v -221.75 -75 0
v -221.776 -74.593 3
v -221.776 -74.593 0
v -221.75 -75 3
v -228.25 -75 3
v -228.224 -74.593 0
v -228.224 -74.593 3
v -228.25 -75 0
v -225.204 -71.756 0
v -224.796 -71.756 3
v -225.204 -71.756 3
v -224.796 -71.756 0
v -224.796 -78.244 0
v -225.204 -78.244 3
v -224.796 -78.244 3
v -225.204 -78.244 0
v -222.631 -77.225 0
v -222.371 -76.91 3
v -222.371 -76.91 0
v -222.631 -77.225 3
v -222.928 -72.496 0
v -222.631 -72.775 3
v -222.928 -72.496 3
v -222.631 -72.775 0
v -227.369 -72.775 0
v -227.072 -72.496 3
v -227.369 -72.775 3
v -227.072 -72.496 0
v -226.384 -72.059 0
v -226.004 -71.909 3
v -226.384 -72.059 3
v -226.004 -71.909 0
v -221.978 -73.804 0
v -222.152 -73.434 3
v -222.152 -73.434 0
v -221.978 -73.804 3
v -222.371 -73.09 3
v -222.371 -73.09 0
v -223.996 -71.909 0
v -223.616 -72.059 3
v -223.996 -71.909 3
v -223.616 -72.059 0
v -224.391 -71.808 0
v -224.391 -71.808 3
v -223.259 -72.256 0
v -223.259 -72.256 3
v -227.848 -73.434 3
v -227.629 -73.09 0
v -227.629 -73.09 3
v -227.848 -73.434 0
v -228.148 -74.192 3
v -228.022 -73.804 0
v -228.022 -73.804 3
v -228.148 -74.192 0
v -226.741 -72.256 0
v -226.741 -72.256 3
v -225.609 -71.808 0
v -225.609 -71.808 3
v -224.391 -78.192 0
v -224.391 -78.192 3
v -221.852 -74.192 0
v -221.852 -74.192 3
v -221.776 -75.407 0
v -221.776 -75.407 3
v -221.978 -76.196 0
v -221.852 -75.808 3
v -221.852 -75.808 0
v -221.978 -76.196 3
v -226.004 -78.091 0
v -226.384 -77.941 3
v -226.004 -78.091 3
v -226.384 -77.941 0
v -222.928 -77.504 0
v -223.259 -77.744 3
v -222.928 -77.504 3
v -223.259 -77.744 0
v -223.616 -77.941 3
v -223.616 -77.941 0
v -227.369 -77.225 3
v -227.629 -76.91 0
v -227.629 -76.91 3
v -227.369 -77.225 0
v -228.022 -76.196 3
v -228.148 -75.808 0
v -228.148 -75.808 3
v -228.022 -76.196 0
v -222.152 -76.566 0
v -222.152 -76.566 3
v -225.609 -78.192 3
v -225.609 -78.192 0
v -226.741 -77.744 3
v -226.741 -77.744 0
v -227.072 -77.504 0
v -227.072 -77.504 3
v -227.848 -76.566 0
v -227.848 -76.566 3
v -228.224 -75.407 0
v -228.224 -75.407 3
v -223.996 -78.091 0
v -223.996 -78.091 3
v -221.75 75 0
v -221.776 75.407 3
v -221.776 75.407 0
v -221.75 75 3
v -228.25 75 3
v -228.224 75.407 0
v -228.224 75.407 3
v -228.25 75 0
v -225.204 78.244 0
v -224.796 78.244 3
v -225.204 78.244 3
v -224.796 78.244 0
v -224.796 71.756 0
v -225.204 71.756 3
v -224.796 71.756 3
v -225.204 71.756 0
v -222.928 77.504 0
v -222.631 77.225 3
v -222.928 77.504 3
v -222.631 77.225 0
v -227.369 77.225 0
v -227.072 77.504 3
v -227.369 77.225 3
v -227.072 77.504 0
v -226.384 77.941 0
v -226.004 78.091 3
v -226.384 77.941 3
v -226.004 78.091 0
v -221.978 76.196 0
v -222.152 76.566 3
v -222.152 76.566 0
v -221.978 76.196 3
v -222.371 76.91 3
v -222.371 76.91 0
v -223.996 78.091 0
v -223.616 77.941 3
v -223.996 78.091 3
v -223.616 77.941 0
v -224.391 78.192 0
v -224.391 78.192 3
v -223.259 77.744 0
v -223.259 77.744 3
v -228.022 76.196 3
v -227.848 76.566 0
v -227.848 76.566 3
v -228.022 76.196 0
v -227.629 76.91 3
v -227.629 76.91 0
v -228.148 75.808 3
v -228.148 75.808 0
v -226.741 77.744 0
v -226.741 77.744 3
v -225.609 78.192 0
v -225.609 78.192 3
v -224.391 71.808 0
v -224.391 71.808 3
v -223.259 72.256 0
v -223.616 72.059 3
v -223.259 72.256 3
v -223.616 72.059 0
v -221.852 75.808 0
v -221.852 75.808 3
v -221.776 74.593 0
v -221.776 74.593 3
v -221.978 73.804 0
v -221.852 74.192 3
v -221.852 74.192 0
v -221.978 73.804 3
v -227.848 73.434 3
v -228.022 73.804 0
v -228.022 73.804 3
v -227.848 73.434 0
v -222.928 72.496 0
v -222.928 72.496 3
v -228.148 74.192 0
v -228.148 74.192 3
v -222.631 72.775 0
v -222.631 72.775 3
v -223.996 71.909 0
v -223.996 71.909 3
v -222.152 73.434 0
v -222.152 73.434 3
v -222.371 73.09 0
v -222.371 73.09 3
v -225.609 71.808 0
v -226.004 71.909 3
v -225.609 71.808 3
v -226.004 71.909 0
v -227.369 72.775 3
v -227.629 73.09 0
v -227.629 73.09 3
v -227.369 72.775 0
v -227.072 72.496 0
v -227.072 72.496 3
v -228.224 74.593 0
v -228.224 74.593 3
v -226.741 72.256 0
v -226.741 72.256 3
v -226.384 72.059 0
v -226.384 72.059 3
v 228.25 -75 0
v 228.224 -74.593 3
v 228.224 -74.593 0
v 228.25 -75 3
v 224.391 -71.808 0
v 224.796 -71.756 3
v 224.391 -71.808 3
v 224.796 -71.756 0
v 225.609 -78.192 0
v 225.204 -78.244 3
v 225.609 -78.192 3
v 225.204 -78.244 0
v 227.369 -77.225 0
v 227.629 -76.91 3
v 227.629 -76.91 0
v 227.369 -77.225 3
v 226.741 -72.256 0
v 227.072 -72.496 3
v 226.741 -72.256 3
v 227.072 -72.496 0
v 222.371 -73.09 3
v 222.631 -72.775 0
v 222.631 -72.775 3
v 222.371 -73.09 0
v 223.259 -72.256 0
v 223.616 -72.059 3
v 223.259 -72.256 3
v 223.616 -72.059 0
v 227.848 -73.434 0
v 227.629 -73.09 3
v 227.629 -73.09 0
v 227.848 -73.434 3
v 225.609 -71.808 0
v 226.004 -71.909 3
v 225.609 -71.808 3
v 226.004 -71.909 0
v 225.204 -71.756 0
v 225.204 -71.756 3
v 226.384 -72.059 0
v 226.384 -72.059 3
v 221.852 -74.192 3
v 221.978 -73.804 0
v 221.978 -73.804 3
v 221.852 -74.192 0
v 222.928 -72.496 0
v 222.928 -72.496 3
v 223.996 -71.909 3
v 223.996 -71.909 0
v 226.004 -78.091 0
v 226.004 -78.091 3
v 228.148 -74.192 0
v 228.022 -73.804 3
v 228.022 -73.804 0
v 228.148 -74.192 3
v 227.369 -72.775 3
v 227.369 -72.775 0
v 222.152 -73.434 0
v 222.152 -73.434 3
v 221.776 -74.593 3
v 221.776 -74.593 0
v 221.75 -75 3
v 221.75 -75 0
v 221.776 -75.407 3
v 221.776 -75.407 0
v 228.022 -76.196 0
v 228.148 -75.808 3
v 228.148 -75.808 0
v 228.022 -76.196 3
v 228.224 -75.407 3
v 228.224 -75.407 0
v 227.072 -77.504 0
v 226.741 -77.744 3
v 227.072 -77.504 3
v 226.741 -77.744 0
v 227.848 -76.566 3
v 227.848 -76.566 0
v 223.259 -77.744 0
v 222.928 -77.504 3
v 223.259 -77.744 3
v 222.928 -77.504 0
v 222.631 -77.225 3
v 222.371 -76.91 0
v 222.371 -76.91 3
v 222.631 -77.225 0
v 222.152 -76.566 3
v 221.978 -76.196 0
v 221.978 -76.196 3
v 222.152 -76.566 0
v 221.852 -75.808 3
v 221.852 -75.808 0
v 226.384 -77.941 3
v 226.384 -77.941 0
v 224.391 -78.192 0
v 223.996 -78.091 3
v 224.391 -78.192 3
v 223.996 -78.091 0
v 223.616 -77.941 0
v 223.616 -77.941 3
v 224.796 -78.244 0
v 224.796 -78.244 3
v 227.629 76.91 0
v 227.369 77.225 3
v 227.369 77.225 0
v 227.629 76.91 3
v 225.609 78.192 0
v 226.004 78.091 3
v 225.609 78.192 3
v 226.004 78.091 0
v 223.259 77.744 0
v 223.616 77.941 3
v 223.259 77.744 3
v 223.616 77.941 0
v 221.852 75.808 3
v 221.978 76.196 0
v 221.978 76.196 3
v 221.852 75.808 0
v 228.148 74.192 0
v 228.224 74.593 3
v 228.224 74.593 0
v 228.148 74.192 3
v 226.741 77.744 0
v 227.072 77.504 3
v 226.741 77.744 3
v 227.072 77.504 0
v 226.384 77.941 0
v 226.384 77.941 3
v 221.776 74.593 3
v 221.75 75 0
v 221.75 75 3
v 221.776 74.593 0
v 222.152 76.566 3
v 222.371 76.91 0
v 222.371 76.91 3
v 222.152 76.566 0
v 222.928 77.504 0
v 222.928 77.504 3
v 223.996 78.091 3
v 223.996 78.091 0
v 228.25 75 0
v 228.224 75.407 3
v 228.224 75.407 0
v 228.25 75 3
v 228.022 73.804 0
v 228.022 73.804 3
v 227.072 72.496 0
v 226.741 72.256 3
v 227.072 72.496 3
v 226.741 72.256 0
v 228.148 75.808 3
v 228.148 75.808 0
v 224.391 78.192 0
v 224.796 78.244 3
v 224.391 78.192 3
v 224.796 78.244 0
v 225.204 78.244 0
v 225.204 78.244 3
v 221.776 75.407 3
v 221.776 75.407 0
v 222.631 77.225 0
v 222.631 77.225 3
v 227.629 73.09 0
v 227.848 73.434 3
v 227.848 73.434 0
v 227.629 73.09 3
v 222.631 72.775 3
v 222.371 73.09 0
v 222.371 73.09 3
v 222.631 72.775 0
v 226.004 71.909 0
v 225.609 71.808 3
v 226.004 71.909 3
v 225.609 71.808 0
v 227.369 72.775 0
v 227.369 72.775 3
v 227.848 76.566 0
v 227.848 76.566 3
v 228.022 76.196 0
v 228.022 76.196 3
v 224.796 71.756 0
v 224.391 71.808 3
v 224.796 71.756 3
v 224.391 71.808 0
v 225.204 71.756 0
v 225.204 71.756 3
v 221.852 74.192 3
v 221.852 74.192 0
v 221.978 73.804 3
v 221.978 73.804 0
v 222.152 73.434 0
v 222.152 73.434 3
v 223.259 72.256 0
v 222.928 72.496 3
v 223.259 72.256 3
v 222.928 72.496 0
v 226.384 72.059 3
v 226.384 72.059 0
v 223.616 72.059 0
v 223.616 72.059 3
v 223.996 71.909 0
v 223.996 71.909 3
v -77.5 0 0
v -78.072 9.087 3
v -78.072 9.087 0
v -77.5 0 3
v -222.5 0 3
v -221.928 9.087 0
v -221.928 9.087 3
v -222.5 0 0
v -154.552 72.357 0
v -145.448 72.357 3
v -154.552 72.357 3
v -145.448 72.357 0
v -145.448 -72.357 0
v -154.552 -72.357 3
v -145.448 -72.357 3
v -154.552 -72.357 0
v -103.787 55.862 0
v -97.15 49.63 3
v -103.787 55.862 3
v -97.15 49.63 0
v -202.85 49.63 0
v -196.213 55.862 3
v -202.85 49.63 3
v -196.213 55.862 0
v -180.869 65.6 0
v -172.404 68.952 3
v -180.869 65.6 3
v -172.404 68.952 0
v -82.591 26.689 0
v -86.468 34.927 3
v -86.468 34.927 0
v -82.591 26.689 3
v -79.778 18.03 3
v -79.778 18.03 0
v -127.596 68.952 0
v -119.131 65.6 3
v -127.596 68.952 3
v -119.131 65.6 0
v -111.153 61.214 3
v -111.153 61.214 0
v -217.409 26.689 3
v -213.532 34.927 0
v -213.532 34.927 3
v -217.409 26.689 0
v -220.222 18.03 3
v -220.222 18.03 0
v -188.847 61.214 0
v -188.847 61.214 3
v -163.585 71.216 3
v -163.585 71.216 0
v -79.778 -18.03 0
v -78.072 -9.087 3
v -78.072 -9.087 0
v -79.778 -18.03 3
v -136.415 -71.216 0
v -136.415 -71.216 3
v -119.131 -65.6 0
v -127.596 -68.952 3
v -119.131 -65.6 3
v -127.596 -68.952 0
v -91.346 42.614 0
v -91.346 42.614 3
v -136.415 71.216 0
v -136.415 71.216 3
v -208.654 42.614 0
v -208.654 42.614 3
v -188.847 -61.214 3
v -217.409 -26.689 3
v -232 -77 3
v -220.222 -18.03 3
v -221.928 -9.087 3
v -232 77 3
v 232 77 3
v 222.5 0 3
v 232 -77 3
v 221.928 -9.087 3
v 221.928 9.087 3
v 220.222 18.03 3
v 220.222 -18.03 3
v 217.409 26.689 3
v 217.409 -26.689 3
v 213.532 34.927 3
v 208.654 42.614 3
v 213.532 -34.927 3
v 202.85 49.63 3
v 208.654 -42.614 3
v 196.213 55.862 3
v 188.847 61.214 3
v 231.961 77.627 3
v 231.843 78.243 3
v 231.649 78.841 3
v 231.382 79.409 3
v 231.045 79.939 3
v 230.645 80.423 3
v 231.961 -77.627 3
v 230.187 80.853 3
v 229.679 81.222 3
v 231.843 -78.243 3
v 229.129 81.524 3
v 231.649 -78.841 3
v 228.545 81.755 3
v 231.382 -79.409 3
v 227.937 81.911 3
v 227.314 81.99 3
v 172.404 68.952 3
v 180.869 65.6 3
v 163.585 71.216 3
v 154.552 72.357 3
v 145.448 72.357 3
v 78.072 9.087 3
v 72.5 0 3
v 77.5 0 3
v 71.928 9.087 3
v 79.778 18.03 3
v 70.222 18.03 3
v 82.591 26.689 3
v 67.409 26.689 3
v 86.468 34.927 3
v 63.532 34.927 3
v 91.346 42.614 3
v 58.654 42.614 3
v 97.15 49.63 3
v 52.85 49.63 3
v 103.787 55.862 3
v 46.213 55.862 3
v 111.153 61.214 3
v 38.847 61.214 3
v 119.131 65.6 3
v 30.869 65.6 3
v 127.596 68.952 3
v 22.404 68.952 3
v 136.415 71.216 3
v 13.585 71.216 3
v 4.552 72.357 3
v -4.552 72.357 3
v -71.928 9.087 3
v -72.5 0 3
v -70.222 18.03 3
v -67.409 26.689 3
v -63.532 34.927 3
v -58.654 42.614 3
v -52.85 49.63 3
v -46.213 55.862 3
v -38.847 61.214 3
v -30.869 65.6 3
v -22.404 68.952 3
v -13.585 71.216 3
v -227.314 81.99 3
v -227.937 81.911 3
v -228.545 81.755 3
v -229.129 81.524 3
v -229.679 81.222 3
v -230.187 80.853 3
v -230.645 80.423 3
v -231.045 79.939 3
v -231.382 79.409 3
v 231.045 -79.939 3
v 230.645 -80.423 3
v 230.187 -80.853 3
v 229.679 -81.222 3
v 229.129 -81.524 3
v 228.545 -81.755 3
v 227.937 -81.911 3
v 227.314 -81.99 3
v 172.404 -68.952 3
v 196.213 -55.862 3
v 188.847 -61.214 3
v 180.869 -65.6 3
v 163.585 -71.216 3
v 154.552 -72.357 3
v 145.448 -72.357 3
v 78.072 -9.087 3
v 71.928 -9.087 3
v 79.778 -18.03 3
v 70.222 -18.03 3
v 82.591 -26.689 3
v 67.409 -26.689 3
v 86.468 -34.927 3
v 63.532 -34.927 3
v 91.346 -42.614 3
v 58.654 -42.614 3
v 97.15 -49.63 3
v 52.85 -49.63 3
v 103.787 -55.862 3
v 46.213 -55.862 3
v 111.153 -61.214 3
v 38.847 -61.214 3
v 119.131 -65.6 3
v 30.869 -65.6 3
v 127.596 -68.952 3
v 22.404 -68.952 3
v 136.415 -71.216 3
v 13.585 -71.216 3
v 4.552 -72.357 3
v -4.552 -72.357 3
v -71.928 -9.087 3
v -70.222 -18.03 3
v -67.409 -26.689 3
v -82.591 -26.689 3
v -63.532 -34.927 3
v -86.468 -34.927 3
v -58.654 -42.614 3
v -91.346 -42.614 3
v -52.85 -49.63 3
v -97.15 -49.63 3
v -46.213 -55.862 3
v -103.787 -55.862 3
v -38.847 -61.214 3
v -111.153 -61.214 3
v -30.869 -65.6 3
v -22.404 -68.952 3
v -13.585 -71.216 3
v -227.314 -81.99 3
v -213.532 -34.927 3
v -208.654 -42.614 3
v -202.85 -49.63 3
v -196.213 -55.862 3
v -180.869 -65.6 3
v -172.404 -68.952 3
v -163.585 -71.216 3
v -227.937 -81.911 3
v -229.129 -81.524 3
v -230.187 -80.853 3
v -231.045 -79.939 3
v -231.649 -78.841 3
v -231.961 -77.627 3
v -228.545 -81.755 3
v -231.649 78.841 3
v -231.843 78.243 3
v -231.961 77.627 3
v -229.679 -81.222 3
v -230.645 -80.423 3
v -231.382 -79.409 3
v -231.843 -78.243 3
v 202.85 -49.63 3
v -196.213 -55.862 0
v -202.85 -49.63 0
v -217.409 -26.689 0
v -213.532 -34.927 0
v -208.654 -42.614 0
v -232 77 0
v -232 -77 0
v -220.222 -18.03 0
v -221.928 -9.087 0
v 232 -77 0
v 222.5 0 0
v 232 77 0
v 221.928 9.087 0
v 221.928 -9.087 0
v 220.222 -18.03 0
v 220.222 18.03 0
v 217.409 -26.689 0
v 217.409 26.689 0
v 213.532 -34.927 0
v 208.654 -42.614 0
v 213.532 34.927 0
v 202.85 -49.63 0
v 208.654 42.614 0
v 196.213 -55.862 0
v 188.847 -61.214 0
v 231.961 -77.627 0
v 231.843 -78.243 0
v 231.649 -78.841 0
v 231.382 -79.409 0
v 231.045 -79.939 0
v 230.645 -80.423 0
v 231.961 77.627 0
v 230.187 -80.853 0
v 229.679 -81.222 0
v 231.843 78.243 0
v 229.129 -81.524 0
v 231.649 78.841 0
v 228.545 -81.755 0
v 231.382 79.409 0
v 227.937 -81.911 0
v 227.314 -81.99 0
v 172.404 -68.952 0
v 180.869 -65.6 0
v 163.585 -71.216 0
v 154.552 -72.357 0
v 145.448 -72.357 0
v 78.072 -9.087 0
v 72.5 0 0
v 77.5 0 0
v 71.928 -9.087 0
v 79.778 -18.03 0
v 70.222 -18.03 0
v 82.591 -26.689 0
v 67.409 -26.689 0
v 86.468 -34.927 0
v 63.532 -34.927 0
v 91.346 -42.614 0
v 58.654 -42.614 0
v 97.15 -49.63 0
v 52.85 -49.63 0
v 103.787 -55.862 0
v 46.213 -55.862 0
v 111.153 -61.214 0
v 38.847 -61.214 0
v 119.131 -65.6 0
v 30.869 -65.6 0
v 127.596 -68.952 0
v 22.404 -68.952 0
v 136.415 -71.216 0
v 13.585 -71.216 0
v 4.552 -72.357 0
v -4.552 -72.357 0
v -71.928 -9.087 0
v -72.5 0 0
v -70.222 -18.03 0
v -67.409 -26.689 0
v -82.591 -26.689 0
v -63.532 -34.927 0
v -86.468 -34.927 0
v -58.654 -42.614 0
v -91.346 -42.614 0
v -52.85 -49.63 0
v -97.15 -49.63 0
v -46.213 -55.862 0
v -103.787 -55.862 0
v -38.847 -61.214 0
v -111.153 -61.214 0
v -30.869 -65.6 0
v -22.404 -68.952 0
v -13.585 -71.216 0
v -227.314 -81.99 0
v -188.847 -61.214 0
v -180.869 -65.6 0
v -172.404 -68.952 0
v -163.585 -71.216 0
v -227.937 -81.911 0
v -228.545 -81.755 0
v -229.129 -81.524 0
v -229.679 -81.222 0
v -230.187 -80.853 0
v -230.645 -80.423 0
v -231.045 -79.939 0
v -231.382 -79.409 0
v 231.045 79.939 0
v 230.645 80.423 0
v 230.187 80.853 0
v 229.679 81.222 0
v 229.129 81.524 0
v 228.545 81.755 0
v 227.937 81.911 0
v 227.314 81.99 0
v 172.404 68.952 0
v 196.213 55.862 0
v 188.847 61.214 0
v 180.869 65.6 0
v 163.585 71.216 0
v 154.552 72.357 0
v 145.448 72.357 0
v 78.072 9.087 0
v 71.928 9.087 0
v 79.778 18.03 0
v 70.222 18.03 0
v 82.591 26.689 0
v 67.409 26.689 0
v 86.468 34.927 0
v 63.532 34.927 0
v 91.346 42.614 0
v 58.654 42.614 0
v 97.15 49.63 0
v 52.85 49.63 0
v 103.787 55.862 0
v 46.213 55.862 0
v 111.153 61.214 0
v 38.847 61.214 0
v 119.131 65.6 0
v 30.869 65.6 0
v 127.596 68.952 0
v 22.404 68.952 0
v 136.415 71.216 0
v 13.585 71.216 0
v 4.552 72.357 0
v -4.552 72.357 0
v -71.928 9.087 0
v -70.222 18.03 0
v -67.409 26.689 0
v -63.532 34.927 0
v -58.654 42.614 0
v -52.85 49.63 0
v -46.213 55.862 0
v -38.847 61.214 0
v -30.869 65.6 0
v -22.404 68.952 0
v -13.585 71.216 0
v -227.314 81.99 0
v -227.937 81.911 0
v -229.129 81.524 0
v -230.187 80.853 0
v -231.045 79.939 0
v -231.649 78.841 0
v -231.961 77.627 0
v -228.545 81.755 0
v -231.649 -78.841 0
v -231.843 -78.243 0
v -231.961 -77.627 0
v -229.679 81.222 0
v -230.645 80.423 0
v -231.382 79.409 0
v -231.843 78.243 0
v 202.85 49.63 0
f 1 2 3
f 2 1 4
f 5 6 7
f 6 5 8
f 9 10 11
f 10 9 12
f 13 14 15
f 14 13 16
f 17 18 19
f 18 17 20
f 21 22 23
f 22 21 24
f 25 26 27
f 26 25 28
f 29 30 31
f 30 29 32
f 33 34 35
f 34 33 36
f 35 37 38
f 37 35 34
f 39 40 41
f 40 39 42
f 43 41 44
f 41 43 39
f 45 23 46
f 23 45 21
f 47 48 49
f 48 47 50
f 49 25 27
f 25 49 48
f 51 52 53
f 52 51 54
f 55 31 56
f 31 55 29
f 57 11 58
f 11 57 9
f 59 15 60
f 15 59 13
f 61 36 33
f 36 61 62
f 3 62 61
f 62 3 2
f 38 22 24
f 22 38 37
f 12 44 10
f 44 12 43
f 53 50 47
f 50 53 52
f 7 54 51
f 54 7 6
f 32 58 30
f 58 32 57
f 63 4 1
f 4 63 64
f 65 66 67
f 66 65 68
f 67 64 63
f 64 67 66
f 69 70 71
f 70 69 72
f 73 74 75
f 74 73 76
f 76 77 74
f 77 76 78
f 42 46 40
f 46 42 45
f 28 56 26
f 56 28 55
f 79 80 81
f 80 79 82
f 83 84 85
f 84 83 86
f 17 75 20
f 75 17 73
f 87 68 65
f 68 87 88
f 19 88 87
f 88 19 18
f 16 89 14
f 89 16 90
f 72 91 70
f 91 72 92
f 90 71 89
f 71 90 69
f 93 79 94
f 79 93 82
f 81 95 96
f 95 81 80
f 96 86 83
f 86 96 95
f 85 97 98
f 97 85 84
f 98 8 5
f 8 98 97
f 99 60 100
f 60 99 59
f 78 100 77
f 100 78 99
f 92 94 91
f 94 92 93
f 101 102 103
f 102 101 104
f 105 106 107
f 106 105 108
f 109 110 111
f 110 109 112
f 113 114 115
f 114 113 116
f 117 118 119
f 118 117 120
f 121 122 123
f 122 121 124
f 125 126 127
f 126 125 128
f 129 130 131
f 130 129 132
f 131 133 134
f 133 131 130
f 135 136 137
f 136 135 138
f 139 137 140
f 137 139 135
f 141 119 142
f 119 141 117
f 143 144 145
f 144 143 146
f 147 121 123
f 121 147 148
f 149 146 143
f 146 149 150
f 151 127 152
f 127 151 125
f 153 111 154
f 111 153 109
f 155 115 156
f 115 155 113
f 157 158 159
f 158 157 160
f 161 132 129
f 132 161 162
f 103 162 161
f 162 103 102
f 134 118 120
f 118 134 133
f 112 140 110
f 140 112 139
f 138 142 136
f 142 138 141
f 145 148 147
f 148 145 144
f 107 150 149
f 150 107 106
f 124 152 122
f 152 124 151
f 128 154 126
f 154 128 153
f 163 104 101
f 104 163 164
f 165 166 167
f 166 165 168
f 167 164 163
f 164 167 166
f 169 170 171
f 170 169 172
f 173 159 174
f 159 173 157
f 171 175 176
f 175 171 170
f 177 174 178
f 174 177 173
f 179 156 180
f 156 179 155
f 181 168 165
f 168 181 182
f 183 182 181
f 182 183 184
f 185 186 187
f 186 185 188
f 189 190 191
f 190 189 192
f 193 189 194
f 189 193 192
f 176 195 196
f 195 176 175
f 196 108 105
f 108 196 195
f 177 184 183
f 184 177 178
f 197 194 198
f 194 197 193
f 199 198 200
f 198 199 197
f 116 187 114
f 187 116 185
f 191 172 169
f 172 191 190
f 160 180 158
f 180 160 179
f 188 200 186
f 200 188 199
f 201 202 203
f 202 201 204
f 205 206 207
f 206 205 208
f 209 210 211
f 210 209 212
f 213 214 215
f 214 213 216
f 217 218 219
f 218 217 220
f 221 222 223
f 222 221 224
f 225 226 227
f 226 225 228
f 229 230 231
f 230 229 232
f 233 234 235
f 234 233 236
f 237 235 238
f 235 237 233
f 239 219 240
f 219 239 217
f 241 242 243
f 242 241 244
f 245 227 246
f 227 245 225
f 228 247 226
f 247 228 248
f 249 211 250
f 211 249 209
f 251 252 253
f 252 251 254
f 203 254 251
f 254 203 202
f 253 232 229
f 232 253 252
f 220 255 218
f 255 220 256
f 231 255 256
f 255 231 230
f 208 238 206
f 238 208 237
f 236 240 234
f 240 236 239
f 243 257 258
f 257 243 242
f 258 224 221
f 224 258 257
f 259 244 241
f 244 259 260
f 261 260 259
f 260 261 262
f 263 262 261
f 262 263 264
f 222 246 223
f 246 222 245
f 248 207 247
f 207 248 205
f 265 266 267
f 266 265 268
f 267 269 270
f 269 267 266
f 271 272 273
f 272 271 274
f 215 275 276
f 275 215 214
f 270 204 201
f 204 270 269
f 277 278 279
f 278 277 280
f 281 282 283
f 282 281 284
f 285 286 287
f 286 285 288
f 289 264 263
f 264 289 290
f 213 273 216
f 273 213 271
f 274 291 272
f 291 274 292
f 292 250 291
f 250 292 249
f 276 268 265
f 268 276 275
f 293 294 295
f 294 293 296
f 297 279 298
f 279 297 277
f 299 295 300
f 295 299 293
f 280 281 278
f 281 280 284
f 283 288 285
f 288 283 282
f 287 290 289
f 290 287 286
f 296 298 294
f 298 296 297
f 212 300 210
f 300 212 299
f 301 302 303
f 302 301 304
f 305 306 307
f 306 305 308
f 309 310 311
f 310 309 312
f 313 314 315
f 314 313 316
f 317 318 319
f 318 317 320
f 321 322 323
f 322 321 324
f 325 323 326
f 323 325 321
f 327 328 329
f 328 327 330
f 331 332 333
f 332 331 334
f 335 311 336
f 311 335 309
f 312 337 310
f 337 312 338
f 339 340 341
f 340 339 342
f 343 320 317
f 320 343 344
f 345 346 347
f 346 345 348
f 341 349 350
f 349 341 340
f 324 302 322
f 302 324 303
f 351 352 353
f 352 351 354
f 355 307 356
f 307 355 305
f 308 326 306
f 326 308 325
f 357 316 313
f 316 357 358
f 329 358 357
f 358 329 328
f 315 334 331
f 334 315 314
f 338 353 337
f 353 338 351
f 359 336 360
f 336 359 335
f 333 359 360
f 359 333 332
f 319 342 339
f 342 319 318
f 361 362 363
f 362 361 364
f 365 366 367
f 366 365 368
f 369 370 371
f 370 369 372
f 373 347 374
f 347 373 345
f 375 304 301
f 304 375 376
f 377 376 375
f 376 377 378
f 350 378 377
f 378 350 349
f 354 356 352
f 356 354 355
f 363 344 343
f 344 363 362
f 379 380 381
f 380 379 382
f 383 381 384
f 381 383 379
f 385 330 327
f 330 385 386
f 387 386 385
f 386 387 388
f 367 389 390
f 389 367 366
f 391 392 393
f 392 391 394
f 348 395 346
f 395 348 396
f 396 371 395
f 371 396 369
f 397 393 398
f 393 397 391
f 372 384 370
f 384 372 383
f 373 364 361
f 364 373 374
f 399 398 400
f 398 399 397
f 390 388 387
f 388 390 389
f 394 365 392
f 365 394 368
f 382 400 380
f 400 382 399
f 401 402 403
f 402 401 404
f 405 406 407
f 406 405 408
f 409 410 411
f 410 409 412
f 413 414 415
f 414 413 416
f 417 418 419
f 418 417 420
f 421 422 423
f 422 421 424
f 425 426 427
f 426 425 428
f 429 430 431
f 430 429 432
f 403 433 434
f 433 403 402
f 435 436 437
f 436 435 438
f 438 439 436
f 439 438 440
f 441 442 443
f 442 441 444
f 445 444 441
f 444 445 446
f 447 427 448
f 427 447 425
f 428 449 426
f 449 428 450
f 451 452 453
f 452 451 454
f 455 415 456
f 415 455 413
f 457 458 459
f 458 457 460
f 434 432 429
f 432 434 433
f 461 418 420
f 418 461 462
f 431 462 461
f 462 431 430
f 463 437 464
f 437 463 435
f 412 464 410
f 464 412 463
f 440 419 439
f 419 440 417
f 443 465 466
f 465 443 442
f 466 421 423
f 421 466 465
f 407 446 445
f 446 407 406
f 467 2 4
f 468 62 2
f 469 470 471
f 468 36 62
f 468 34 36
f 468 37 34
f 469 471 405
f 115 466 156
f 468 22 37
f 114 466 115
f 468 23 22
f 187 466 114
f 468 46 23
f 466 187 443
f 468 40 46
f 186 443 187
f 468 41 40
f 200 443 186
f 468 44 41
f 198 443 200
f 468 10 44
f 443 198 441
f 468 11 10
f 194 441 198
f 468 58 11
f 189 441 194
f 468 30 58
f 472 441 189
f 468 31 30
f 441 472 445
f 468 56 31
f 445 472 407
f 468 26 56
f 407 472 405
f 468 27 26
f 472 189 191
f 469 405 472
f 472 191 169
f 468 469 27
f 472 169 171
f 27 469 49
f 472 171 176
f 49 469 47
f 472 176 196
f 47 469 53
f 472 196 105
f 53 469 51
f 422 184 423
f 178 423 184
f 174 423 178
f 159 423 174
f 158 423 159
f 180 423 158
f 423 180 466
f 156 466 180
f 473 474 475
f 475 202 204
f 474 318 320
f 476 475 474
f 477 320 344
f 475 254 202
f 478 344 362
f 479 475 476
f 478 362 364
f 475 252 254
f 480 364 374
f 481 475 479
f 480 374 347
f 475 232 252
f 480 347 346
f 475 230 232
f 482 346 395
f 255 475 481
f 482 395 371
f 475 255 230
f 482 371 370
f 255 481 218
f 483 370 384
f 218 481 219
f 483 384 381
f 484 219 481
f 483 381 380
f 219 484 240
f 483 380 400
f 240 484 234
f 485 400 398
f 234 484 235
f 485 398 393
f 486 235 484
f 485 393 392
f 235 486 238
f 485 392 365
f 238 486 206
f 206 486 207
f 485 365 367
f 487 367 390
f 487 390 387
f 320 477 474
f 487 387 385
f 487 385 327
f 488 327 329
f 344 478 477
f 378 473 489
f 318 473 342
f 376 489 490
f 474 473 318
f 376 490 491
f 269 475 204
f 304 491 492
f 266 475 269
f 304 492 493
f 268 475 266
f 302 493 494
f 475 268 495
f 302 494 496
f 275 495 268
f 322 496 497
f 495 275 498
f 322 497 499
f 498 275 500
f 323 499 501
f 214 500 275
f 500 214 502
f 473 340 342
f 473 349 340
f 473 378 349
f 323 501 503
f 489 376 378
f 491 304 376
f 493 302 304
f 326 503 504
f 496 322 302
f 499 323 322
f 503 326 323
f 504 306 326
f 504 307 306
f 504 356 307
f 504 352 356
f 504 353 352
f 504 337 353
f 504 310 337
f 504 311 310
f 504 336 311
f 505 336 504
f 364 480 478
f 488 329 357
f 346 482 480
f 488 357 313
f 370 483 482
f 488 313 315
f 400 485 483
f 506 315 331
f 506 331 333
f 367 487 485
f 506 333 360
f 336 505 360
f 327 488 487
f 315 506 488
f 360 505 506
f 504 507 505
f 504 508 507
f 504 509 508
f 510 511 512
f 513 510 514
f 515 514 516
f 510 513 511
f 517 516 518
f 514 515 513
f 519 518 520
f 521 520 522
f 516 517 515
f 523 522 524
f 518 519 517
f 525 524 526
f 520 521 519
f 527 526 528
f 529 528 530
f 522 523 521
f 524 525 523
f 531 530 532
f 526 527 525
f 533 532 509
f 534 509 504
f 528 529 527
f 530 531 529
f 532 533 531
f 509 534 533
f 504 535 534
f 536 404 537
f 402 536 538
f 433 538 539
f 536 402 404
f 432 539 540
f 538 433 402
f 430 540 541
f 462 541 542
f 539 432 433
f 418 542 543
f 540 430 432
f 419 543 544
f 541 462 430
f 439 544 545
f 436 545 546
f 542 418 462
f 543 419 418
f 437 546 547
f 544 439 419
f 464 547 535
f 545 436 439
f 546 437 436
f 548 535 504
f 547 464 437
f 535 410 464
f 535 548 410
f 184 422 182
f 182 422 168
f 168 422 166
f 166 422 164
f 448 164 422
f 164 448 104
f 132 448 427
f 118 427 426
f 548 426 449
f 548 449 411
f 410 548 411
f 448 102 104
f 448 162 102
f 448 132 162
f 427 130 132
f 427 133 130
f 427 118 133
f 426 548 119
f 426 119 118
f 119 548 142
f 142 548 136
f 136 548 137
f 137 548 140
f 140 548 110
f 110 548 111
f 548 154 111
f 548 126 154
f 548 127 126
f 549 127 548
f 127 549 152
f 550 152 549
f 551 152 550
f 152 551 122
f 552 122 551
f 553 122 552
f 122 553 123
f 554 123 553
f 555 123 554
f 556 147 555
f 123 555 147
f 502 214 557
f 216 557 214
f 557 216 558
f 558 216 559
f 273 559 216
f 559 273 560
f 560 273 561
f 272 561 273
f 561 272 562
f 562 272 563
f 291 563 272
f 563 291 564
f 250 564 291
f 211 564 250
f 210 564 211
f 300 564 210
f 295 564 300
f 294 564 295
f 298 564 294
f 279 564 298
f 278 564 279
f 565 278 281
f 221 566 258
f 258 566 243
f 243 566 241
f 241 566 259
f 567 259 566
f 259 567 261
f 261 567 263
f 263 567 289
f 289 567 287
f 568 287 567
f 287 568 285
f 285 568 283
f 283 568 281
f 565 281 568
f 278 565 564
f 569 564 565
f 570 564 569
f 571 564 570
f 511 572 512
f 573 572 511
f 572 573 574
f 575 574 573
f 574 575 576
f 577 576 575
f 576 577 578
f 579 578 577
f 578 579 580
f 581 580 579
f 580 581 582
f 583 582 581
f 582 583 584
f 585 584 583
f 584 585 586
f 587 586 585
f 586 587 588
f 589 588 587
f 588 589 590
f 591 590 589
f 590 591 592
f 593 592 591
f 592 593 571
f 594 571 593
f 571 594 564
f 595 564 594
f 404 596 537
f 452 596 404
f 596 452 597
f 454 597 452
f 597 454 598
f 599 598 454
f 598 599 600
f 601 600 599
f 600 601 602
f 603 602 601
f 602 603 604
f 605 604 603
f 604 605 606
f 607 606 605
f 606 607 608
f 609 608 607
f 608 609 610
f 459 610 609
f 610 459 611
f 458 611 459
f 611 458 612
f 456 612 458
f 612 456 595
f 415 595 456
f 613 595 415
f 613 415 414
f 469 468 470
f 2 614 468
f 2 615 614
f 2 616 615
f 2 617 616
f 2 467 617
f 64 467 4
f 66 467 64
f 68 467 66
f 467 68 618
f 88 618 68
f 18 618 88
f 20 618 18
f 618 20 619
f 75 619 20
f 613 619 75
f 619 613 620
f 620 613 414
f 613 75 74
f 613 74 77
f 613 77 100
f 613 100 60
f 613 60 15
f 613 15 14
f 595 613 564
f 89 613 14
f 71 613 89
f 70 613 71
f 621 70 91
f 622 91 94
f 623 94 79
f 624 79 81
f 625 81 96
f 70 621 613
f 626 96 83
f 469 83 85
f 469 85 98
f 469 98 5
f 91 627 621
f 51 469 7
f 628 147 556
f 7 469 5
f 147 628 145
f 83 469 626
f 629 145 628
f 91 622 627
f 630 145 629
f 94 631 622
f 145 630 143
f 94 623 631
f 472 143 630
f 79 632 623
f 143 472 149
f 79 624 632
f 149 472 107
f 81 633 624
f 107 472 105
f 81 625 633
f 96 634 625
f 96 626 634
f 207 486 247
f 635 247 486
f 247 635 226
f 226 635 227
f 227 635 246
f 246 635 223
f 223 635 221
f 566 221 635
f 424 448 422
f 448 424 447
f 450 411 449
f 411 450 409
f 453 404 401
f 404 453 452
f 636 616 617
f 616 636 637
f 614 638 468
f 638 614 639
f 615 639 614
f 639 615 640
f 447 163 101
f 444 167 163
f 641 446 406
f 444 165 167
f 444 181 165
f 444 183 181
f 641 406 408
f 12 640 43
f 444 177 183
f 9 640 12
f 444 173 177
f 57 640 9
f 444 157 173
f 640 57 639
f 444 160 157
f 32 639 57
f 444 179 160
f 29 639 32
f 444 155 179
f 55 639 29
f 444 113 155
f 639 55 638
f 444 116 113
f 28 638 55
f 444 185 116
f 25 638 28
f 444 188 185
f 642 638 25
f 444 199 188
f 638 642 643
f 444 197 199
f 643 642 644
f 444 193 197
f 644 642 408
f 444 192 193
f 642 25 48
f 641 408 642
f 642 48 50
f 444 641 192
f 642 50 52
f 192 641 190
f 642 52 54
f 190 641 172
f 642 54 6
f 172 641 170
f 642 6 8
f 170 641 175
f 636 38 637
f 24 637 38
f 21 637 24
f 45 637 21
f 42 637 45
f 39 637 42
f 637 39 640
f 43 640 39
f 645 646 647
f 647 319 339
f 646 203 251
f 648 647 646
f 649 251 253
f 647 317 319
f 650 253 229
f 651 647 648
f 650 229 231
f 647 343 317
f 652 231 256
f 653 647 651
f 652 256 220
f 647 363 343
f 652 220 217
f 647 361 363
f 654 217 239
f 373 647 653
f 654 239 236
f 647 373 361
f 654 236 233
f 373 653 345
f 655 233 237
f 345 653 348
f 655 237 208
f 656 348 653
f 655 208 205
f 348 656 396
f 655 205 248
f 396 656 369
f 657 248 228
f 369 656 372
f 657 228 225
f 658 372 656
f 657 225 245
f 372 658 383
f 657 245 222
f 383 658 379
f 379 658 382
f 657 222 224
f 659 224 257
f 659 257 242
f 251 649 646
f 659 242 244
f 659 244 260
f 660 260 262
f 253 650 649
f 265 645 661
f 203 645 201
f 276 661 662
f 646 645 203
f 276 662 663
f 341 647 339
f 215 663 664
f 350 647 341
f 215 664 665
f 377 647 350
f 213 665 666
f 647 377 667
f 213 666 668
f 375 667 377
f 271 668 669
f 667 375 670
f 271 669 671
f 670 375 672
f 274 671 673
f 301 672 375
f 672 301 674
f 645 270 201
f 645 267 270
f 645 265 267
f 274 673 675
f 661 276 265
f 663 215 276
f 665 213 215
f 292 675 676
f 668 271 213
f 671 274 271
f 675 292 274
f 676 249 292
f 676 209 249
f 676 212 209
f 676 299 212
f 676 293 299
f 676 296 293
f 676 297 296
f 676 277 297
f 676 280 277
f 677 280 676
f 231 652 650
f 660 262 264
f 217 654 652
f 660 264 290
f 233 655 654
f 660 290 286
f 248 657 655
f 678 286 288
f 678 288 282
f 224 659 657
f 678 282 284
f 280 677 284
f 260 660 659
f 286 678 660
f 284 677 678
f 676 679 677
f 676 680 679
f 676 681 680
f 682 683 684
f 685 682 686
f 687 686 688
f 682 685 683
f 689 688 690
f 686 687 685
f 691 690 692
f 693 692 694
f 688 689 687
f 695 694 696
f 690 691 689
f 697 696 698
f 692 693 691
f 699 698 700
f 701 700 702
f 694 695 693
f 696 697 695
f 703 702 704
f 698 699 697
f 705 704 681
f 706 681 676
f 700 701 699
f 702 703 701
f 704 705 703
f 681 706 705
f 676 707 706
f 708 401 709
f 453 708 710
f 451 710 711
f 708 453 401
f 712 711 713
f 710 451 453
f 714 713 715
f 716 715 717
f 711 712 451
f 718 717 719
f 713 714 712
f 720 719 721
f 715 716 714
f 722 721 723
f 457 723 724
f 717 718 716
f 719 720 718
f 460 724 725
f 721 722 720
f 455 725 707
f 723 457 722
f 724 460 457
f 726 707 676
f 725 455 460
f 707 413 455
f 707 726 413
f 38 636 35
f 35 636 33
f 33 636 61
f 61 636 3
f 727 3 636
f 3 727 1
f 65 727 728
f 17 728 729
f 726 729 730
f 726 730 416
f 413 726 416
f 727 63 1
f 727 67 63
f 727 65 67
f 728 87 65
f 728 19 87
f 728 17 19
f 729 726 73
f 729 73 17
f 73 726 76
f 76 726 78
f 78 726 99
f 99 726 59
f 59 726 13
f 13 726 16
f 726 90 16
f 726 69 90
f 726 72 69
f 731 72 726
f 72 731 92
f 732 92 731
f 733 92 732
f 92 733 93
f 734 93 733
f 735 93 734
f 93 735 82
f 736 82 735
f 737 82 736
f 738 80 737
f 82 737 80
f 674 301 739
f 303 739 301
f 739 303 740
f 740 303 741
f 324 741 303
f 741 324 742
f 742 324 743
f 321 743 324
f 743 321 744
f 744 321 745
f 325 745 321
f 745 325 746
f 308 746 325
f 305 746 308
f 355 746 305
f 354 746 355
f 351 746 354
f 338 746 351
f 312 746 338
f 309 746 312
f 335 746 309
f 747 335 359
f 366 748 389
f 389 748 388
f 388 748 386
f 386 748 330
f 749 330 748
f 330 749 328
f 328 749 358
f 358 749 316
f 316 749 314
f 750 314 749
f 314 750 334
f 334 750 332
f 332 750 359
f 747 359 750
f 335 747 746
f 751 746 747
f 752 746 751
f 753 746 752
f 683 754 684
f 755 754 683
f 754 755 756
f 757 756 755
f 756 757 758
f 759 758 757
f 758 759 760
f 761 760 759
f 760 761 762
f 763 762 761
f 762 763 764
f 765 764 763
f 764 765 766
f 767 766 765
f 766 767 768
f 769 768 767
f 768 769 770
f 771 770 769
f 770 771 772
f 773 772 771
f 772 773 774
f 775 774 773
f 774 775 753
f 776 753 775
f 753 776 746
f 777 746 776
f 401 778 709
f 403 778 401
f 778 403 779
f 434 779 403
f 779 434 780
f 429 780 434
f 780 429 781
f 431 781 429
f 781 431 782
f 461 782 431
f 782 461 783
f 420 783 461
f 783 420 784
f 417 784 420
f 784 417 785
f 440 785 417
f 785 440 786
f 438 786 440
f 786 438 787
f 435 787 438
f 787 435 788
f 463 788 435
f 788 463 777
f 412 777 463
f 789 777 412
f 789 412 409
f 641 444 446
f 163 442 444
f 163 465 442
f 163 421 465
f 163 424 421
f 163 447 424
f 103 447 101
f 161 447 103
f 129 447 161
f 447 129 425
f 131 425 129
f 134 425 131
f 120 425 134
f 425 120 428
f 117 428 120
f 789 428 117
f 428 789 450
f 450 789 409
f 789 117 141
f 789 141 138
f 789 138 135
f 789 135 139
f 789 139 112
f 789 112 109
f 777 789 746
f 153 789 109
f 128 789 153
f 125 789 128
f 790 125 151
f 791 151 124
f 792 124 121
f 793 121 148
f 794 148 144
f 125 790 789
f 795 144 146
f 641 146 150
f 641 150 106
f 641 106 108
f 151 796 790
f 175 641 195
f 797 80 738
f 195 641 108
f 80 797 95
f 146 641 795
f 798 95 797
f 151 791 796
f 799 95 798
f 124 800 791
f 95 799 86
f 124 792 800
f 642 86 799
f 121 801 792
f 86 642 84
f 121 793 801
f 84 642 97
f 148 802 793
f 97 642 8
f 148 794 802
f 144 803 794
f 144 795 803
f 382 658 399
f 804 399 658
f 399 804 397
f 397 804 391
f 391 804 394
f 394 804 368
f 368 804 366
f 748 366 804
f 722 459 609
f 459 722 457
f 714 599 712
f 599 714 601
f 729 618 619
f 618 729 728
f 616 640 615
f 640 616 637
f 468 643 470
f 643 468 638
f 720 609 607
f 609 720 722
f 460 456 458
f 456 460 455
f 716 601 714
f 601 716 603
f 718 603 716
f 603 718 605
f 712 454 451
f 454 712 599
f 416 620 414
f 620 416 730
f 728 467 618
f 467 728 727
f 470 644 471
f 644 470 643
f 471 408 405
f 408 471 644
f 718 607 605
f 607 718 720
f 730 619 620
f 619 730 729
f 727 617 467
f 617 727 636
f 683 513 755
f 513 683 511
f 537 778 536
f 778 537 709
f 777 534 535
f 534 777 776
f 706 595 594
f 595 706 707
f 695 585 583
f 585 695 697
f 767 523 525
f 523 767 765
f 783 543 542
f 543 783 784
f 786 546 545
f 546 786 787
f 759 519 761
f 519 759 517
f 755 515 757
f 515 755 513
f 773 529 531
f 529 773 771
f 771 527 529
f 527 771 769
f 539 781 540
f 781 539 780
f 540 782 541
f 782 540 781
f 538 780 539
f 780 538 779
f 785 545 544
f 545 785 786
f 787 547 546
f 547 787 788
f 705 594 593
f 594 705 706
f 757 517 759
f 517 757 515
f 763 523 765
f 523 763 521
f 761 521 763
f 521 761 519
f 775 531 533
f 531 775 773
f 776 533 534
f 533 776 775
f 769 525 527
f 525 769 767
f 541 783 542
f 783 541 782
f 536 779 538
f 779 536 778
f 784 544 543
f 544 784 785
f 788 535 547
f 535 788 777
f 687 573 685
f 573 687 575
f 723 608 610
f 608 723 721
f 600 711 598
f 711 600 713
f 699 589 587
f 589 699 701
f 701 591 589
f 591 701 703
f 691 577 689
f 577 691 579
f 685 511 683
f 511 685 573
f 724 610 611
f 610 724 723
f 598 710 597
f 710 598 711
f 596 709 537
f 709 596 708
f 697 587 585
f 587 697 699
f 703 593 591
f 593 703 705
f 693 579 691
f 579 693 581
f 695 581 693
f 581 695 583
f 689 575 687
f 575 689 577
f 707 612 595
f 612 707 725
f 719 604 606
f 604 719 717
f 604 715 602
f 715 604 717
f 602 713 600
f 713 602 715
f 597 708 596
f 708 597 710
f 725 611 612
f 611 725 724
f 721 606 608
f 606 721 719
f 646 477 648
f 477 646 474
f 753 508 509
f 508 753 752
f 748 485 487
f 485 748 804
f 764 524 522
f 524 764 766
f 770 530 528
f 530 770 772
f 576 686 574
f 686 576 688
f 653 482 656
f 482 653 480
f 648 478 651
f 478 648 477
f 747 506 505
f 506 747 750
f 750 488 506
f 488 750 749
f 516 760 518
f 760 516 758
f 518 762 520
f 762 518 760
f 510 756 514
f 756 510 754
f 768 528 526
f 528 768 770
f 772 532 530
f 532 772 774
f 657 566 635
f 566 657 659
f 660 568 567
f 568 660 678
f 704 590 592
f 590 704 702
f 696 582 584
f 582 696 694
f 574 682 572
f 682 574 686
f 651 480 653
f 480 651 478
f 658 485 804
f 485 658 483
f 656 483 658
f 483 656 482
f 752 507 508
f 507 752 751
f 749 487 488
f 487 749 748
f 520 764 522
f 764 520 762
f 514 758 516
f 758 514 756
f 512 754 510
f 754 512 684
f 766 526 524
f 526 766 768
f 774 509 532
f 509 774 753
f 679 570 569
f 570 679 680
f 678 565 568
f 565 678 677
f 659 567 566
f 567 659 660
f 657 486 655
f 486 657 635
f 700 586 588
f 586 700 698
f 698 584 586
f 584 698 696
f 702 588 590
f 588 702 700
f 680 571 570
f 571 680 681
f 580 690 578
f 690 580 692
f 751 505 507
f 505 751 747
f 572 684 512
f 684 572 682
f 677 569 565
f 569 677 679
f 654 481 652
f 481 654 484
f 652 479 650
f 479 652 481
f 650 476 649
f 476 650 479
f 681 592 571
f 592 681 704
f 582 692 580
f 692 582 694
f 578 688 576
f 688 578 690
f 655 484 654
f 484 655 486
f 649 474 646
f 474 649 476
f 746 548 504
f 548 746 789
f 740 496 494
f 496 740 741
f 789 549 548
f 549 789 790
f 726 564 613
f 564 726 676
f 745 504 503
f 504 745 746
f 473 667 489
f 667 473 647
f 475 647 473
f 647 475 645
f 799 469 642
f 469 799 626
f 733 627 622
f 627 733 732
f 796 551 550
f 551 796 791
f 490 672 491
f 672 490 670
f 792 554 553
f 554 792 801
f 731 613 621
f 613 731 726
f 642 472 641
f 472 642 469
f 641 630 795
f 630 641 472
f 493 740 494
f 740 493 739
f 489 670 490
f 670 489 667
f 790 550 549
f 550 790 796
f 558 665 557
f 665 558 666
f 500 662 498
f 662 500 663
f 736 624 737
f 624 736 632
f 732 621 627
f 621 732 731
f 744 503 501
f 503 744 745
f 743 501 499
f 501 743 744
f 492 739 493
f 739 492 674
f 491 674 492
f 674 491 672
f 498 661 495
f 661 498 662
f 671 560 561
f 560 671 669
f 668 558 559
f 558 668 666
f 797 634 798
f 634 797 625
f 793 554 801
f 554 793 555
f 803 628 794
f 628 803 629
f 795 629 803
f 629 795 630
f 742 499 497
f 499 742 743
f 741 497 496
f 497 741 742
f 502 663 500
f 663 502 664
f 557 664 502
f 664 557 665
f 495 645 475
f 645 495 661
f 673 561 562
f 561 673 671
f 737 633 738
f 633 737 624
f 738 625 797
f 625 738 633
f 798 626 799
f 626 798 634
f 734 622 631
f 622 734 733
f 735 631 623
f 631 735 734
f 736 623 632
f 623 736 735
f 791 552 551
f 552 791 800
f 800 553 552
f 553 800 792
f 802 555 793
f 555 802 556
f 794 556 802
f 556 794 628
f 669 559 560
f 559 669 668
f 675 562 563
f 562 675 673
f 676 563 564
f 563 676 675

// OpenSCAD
$fn = 50;


difference() {
	union() {
		hull() {
			translate(v = [-227.0000000000, 77.0000000000, 0]) {
				cylinder(h = 3, r = 5);
			}
			translate(v = [227.0000000000, 77.0000000000, 0]) {
				cylinder(h = 3, r = 5);
			}
			translate(v = [-227.0000000000, -77.0000000000, 0]) {
				cylinder(h = 3, r = 5);
			}
			translate(v = [227.0000000000, -77.0000000000, 0]) {
				cylinder(h = 3, r = 5);
			}
		}
	}
	union() {
		#translate(v = [-225.0000000000, -75.0000000000, -100.0000000000]) {
			cylinder(h = 200, r = 3.2500000000);
		}
		#translate(v = [-225.0000000000, 75.0000000000, -100.0000000000]) {
			cylinder(h = 200, r = 3.2500000000);
		}
		#translate(v = [225.0000000000, -75.0000000000, -100.0000000000]) {
			cylinder(h = 200, r = 3.2500000000);
		}
		#translate(v = [225.0000000000, 75.0000000000, -100.0000000000]) {
			cylinder(h = 200, r = 3.2500000000);
		}
		#translate(v = [-150.0000000000, 0, 0]) {
			cylinder(h = 3, r = 72.5000000000);
		}
		#cylinder(h = 3, r = 72.5000000000);
		#translate(v = [150.0000000000, 0, 0]) {
			cylinder(h = 3, r = 72.5000000000);
		}
	}
}
